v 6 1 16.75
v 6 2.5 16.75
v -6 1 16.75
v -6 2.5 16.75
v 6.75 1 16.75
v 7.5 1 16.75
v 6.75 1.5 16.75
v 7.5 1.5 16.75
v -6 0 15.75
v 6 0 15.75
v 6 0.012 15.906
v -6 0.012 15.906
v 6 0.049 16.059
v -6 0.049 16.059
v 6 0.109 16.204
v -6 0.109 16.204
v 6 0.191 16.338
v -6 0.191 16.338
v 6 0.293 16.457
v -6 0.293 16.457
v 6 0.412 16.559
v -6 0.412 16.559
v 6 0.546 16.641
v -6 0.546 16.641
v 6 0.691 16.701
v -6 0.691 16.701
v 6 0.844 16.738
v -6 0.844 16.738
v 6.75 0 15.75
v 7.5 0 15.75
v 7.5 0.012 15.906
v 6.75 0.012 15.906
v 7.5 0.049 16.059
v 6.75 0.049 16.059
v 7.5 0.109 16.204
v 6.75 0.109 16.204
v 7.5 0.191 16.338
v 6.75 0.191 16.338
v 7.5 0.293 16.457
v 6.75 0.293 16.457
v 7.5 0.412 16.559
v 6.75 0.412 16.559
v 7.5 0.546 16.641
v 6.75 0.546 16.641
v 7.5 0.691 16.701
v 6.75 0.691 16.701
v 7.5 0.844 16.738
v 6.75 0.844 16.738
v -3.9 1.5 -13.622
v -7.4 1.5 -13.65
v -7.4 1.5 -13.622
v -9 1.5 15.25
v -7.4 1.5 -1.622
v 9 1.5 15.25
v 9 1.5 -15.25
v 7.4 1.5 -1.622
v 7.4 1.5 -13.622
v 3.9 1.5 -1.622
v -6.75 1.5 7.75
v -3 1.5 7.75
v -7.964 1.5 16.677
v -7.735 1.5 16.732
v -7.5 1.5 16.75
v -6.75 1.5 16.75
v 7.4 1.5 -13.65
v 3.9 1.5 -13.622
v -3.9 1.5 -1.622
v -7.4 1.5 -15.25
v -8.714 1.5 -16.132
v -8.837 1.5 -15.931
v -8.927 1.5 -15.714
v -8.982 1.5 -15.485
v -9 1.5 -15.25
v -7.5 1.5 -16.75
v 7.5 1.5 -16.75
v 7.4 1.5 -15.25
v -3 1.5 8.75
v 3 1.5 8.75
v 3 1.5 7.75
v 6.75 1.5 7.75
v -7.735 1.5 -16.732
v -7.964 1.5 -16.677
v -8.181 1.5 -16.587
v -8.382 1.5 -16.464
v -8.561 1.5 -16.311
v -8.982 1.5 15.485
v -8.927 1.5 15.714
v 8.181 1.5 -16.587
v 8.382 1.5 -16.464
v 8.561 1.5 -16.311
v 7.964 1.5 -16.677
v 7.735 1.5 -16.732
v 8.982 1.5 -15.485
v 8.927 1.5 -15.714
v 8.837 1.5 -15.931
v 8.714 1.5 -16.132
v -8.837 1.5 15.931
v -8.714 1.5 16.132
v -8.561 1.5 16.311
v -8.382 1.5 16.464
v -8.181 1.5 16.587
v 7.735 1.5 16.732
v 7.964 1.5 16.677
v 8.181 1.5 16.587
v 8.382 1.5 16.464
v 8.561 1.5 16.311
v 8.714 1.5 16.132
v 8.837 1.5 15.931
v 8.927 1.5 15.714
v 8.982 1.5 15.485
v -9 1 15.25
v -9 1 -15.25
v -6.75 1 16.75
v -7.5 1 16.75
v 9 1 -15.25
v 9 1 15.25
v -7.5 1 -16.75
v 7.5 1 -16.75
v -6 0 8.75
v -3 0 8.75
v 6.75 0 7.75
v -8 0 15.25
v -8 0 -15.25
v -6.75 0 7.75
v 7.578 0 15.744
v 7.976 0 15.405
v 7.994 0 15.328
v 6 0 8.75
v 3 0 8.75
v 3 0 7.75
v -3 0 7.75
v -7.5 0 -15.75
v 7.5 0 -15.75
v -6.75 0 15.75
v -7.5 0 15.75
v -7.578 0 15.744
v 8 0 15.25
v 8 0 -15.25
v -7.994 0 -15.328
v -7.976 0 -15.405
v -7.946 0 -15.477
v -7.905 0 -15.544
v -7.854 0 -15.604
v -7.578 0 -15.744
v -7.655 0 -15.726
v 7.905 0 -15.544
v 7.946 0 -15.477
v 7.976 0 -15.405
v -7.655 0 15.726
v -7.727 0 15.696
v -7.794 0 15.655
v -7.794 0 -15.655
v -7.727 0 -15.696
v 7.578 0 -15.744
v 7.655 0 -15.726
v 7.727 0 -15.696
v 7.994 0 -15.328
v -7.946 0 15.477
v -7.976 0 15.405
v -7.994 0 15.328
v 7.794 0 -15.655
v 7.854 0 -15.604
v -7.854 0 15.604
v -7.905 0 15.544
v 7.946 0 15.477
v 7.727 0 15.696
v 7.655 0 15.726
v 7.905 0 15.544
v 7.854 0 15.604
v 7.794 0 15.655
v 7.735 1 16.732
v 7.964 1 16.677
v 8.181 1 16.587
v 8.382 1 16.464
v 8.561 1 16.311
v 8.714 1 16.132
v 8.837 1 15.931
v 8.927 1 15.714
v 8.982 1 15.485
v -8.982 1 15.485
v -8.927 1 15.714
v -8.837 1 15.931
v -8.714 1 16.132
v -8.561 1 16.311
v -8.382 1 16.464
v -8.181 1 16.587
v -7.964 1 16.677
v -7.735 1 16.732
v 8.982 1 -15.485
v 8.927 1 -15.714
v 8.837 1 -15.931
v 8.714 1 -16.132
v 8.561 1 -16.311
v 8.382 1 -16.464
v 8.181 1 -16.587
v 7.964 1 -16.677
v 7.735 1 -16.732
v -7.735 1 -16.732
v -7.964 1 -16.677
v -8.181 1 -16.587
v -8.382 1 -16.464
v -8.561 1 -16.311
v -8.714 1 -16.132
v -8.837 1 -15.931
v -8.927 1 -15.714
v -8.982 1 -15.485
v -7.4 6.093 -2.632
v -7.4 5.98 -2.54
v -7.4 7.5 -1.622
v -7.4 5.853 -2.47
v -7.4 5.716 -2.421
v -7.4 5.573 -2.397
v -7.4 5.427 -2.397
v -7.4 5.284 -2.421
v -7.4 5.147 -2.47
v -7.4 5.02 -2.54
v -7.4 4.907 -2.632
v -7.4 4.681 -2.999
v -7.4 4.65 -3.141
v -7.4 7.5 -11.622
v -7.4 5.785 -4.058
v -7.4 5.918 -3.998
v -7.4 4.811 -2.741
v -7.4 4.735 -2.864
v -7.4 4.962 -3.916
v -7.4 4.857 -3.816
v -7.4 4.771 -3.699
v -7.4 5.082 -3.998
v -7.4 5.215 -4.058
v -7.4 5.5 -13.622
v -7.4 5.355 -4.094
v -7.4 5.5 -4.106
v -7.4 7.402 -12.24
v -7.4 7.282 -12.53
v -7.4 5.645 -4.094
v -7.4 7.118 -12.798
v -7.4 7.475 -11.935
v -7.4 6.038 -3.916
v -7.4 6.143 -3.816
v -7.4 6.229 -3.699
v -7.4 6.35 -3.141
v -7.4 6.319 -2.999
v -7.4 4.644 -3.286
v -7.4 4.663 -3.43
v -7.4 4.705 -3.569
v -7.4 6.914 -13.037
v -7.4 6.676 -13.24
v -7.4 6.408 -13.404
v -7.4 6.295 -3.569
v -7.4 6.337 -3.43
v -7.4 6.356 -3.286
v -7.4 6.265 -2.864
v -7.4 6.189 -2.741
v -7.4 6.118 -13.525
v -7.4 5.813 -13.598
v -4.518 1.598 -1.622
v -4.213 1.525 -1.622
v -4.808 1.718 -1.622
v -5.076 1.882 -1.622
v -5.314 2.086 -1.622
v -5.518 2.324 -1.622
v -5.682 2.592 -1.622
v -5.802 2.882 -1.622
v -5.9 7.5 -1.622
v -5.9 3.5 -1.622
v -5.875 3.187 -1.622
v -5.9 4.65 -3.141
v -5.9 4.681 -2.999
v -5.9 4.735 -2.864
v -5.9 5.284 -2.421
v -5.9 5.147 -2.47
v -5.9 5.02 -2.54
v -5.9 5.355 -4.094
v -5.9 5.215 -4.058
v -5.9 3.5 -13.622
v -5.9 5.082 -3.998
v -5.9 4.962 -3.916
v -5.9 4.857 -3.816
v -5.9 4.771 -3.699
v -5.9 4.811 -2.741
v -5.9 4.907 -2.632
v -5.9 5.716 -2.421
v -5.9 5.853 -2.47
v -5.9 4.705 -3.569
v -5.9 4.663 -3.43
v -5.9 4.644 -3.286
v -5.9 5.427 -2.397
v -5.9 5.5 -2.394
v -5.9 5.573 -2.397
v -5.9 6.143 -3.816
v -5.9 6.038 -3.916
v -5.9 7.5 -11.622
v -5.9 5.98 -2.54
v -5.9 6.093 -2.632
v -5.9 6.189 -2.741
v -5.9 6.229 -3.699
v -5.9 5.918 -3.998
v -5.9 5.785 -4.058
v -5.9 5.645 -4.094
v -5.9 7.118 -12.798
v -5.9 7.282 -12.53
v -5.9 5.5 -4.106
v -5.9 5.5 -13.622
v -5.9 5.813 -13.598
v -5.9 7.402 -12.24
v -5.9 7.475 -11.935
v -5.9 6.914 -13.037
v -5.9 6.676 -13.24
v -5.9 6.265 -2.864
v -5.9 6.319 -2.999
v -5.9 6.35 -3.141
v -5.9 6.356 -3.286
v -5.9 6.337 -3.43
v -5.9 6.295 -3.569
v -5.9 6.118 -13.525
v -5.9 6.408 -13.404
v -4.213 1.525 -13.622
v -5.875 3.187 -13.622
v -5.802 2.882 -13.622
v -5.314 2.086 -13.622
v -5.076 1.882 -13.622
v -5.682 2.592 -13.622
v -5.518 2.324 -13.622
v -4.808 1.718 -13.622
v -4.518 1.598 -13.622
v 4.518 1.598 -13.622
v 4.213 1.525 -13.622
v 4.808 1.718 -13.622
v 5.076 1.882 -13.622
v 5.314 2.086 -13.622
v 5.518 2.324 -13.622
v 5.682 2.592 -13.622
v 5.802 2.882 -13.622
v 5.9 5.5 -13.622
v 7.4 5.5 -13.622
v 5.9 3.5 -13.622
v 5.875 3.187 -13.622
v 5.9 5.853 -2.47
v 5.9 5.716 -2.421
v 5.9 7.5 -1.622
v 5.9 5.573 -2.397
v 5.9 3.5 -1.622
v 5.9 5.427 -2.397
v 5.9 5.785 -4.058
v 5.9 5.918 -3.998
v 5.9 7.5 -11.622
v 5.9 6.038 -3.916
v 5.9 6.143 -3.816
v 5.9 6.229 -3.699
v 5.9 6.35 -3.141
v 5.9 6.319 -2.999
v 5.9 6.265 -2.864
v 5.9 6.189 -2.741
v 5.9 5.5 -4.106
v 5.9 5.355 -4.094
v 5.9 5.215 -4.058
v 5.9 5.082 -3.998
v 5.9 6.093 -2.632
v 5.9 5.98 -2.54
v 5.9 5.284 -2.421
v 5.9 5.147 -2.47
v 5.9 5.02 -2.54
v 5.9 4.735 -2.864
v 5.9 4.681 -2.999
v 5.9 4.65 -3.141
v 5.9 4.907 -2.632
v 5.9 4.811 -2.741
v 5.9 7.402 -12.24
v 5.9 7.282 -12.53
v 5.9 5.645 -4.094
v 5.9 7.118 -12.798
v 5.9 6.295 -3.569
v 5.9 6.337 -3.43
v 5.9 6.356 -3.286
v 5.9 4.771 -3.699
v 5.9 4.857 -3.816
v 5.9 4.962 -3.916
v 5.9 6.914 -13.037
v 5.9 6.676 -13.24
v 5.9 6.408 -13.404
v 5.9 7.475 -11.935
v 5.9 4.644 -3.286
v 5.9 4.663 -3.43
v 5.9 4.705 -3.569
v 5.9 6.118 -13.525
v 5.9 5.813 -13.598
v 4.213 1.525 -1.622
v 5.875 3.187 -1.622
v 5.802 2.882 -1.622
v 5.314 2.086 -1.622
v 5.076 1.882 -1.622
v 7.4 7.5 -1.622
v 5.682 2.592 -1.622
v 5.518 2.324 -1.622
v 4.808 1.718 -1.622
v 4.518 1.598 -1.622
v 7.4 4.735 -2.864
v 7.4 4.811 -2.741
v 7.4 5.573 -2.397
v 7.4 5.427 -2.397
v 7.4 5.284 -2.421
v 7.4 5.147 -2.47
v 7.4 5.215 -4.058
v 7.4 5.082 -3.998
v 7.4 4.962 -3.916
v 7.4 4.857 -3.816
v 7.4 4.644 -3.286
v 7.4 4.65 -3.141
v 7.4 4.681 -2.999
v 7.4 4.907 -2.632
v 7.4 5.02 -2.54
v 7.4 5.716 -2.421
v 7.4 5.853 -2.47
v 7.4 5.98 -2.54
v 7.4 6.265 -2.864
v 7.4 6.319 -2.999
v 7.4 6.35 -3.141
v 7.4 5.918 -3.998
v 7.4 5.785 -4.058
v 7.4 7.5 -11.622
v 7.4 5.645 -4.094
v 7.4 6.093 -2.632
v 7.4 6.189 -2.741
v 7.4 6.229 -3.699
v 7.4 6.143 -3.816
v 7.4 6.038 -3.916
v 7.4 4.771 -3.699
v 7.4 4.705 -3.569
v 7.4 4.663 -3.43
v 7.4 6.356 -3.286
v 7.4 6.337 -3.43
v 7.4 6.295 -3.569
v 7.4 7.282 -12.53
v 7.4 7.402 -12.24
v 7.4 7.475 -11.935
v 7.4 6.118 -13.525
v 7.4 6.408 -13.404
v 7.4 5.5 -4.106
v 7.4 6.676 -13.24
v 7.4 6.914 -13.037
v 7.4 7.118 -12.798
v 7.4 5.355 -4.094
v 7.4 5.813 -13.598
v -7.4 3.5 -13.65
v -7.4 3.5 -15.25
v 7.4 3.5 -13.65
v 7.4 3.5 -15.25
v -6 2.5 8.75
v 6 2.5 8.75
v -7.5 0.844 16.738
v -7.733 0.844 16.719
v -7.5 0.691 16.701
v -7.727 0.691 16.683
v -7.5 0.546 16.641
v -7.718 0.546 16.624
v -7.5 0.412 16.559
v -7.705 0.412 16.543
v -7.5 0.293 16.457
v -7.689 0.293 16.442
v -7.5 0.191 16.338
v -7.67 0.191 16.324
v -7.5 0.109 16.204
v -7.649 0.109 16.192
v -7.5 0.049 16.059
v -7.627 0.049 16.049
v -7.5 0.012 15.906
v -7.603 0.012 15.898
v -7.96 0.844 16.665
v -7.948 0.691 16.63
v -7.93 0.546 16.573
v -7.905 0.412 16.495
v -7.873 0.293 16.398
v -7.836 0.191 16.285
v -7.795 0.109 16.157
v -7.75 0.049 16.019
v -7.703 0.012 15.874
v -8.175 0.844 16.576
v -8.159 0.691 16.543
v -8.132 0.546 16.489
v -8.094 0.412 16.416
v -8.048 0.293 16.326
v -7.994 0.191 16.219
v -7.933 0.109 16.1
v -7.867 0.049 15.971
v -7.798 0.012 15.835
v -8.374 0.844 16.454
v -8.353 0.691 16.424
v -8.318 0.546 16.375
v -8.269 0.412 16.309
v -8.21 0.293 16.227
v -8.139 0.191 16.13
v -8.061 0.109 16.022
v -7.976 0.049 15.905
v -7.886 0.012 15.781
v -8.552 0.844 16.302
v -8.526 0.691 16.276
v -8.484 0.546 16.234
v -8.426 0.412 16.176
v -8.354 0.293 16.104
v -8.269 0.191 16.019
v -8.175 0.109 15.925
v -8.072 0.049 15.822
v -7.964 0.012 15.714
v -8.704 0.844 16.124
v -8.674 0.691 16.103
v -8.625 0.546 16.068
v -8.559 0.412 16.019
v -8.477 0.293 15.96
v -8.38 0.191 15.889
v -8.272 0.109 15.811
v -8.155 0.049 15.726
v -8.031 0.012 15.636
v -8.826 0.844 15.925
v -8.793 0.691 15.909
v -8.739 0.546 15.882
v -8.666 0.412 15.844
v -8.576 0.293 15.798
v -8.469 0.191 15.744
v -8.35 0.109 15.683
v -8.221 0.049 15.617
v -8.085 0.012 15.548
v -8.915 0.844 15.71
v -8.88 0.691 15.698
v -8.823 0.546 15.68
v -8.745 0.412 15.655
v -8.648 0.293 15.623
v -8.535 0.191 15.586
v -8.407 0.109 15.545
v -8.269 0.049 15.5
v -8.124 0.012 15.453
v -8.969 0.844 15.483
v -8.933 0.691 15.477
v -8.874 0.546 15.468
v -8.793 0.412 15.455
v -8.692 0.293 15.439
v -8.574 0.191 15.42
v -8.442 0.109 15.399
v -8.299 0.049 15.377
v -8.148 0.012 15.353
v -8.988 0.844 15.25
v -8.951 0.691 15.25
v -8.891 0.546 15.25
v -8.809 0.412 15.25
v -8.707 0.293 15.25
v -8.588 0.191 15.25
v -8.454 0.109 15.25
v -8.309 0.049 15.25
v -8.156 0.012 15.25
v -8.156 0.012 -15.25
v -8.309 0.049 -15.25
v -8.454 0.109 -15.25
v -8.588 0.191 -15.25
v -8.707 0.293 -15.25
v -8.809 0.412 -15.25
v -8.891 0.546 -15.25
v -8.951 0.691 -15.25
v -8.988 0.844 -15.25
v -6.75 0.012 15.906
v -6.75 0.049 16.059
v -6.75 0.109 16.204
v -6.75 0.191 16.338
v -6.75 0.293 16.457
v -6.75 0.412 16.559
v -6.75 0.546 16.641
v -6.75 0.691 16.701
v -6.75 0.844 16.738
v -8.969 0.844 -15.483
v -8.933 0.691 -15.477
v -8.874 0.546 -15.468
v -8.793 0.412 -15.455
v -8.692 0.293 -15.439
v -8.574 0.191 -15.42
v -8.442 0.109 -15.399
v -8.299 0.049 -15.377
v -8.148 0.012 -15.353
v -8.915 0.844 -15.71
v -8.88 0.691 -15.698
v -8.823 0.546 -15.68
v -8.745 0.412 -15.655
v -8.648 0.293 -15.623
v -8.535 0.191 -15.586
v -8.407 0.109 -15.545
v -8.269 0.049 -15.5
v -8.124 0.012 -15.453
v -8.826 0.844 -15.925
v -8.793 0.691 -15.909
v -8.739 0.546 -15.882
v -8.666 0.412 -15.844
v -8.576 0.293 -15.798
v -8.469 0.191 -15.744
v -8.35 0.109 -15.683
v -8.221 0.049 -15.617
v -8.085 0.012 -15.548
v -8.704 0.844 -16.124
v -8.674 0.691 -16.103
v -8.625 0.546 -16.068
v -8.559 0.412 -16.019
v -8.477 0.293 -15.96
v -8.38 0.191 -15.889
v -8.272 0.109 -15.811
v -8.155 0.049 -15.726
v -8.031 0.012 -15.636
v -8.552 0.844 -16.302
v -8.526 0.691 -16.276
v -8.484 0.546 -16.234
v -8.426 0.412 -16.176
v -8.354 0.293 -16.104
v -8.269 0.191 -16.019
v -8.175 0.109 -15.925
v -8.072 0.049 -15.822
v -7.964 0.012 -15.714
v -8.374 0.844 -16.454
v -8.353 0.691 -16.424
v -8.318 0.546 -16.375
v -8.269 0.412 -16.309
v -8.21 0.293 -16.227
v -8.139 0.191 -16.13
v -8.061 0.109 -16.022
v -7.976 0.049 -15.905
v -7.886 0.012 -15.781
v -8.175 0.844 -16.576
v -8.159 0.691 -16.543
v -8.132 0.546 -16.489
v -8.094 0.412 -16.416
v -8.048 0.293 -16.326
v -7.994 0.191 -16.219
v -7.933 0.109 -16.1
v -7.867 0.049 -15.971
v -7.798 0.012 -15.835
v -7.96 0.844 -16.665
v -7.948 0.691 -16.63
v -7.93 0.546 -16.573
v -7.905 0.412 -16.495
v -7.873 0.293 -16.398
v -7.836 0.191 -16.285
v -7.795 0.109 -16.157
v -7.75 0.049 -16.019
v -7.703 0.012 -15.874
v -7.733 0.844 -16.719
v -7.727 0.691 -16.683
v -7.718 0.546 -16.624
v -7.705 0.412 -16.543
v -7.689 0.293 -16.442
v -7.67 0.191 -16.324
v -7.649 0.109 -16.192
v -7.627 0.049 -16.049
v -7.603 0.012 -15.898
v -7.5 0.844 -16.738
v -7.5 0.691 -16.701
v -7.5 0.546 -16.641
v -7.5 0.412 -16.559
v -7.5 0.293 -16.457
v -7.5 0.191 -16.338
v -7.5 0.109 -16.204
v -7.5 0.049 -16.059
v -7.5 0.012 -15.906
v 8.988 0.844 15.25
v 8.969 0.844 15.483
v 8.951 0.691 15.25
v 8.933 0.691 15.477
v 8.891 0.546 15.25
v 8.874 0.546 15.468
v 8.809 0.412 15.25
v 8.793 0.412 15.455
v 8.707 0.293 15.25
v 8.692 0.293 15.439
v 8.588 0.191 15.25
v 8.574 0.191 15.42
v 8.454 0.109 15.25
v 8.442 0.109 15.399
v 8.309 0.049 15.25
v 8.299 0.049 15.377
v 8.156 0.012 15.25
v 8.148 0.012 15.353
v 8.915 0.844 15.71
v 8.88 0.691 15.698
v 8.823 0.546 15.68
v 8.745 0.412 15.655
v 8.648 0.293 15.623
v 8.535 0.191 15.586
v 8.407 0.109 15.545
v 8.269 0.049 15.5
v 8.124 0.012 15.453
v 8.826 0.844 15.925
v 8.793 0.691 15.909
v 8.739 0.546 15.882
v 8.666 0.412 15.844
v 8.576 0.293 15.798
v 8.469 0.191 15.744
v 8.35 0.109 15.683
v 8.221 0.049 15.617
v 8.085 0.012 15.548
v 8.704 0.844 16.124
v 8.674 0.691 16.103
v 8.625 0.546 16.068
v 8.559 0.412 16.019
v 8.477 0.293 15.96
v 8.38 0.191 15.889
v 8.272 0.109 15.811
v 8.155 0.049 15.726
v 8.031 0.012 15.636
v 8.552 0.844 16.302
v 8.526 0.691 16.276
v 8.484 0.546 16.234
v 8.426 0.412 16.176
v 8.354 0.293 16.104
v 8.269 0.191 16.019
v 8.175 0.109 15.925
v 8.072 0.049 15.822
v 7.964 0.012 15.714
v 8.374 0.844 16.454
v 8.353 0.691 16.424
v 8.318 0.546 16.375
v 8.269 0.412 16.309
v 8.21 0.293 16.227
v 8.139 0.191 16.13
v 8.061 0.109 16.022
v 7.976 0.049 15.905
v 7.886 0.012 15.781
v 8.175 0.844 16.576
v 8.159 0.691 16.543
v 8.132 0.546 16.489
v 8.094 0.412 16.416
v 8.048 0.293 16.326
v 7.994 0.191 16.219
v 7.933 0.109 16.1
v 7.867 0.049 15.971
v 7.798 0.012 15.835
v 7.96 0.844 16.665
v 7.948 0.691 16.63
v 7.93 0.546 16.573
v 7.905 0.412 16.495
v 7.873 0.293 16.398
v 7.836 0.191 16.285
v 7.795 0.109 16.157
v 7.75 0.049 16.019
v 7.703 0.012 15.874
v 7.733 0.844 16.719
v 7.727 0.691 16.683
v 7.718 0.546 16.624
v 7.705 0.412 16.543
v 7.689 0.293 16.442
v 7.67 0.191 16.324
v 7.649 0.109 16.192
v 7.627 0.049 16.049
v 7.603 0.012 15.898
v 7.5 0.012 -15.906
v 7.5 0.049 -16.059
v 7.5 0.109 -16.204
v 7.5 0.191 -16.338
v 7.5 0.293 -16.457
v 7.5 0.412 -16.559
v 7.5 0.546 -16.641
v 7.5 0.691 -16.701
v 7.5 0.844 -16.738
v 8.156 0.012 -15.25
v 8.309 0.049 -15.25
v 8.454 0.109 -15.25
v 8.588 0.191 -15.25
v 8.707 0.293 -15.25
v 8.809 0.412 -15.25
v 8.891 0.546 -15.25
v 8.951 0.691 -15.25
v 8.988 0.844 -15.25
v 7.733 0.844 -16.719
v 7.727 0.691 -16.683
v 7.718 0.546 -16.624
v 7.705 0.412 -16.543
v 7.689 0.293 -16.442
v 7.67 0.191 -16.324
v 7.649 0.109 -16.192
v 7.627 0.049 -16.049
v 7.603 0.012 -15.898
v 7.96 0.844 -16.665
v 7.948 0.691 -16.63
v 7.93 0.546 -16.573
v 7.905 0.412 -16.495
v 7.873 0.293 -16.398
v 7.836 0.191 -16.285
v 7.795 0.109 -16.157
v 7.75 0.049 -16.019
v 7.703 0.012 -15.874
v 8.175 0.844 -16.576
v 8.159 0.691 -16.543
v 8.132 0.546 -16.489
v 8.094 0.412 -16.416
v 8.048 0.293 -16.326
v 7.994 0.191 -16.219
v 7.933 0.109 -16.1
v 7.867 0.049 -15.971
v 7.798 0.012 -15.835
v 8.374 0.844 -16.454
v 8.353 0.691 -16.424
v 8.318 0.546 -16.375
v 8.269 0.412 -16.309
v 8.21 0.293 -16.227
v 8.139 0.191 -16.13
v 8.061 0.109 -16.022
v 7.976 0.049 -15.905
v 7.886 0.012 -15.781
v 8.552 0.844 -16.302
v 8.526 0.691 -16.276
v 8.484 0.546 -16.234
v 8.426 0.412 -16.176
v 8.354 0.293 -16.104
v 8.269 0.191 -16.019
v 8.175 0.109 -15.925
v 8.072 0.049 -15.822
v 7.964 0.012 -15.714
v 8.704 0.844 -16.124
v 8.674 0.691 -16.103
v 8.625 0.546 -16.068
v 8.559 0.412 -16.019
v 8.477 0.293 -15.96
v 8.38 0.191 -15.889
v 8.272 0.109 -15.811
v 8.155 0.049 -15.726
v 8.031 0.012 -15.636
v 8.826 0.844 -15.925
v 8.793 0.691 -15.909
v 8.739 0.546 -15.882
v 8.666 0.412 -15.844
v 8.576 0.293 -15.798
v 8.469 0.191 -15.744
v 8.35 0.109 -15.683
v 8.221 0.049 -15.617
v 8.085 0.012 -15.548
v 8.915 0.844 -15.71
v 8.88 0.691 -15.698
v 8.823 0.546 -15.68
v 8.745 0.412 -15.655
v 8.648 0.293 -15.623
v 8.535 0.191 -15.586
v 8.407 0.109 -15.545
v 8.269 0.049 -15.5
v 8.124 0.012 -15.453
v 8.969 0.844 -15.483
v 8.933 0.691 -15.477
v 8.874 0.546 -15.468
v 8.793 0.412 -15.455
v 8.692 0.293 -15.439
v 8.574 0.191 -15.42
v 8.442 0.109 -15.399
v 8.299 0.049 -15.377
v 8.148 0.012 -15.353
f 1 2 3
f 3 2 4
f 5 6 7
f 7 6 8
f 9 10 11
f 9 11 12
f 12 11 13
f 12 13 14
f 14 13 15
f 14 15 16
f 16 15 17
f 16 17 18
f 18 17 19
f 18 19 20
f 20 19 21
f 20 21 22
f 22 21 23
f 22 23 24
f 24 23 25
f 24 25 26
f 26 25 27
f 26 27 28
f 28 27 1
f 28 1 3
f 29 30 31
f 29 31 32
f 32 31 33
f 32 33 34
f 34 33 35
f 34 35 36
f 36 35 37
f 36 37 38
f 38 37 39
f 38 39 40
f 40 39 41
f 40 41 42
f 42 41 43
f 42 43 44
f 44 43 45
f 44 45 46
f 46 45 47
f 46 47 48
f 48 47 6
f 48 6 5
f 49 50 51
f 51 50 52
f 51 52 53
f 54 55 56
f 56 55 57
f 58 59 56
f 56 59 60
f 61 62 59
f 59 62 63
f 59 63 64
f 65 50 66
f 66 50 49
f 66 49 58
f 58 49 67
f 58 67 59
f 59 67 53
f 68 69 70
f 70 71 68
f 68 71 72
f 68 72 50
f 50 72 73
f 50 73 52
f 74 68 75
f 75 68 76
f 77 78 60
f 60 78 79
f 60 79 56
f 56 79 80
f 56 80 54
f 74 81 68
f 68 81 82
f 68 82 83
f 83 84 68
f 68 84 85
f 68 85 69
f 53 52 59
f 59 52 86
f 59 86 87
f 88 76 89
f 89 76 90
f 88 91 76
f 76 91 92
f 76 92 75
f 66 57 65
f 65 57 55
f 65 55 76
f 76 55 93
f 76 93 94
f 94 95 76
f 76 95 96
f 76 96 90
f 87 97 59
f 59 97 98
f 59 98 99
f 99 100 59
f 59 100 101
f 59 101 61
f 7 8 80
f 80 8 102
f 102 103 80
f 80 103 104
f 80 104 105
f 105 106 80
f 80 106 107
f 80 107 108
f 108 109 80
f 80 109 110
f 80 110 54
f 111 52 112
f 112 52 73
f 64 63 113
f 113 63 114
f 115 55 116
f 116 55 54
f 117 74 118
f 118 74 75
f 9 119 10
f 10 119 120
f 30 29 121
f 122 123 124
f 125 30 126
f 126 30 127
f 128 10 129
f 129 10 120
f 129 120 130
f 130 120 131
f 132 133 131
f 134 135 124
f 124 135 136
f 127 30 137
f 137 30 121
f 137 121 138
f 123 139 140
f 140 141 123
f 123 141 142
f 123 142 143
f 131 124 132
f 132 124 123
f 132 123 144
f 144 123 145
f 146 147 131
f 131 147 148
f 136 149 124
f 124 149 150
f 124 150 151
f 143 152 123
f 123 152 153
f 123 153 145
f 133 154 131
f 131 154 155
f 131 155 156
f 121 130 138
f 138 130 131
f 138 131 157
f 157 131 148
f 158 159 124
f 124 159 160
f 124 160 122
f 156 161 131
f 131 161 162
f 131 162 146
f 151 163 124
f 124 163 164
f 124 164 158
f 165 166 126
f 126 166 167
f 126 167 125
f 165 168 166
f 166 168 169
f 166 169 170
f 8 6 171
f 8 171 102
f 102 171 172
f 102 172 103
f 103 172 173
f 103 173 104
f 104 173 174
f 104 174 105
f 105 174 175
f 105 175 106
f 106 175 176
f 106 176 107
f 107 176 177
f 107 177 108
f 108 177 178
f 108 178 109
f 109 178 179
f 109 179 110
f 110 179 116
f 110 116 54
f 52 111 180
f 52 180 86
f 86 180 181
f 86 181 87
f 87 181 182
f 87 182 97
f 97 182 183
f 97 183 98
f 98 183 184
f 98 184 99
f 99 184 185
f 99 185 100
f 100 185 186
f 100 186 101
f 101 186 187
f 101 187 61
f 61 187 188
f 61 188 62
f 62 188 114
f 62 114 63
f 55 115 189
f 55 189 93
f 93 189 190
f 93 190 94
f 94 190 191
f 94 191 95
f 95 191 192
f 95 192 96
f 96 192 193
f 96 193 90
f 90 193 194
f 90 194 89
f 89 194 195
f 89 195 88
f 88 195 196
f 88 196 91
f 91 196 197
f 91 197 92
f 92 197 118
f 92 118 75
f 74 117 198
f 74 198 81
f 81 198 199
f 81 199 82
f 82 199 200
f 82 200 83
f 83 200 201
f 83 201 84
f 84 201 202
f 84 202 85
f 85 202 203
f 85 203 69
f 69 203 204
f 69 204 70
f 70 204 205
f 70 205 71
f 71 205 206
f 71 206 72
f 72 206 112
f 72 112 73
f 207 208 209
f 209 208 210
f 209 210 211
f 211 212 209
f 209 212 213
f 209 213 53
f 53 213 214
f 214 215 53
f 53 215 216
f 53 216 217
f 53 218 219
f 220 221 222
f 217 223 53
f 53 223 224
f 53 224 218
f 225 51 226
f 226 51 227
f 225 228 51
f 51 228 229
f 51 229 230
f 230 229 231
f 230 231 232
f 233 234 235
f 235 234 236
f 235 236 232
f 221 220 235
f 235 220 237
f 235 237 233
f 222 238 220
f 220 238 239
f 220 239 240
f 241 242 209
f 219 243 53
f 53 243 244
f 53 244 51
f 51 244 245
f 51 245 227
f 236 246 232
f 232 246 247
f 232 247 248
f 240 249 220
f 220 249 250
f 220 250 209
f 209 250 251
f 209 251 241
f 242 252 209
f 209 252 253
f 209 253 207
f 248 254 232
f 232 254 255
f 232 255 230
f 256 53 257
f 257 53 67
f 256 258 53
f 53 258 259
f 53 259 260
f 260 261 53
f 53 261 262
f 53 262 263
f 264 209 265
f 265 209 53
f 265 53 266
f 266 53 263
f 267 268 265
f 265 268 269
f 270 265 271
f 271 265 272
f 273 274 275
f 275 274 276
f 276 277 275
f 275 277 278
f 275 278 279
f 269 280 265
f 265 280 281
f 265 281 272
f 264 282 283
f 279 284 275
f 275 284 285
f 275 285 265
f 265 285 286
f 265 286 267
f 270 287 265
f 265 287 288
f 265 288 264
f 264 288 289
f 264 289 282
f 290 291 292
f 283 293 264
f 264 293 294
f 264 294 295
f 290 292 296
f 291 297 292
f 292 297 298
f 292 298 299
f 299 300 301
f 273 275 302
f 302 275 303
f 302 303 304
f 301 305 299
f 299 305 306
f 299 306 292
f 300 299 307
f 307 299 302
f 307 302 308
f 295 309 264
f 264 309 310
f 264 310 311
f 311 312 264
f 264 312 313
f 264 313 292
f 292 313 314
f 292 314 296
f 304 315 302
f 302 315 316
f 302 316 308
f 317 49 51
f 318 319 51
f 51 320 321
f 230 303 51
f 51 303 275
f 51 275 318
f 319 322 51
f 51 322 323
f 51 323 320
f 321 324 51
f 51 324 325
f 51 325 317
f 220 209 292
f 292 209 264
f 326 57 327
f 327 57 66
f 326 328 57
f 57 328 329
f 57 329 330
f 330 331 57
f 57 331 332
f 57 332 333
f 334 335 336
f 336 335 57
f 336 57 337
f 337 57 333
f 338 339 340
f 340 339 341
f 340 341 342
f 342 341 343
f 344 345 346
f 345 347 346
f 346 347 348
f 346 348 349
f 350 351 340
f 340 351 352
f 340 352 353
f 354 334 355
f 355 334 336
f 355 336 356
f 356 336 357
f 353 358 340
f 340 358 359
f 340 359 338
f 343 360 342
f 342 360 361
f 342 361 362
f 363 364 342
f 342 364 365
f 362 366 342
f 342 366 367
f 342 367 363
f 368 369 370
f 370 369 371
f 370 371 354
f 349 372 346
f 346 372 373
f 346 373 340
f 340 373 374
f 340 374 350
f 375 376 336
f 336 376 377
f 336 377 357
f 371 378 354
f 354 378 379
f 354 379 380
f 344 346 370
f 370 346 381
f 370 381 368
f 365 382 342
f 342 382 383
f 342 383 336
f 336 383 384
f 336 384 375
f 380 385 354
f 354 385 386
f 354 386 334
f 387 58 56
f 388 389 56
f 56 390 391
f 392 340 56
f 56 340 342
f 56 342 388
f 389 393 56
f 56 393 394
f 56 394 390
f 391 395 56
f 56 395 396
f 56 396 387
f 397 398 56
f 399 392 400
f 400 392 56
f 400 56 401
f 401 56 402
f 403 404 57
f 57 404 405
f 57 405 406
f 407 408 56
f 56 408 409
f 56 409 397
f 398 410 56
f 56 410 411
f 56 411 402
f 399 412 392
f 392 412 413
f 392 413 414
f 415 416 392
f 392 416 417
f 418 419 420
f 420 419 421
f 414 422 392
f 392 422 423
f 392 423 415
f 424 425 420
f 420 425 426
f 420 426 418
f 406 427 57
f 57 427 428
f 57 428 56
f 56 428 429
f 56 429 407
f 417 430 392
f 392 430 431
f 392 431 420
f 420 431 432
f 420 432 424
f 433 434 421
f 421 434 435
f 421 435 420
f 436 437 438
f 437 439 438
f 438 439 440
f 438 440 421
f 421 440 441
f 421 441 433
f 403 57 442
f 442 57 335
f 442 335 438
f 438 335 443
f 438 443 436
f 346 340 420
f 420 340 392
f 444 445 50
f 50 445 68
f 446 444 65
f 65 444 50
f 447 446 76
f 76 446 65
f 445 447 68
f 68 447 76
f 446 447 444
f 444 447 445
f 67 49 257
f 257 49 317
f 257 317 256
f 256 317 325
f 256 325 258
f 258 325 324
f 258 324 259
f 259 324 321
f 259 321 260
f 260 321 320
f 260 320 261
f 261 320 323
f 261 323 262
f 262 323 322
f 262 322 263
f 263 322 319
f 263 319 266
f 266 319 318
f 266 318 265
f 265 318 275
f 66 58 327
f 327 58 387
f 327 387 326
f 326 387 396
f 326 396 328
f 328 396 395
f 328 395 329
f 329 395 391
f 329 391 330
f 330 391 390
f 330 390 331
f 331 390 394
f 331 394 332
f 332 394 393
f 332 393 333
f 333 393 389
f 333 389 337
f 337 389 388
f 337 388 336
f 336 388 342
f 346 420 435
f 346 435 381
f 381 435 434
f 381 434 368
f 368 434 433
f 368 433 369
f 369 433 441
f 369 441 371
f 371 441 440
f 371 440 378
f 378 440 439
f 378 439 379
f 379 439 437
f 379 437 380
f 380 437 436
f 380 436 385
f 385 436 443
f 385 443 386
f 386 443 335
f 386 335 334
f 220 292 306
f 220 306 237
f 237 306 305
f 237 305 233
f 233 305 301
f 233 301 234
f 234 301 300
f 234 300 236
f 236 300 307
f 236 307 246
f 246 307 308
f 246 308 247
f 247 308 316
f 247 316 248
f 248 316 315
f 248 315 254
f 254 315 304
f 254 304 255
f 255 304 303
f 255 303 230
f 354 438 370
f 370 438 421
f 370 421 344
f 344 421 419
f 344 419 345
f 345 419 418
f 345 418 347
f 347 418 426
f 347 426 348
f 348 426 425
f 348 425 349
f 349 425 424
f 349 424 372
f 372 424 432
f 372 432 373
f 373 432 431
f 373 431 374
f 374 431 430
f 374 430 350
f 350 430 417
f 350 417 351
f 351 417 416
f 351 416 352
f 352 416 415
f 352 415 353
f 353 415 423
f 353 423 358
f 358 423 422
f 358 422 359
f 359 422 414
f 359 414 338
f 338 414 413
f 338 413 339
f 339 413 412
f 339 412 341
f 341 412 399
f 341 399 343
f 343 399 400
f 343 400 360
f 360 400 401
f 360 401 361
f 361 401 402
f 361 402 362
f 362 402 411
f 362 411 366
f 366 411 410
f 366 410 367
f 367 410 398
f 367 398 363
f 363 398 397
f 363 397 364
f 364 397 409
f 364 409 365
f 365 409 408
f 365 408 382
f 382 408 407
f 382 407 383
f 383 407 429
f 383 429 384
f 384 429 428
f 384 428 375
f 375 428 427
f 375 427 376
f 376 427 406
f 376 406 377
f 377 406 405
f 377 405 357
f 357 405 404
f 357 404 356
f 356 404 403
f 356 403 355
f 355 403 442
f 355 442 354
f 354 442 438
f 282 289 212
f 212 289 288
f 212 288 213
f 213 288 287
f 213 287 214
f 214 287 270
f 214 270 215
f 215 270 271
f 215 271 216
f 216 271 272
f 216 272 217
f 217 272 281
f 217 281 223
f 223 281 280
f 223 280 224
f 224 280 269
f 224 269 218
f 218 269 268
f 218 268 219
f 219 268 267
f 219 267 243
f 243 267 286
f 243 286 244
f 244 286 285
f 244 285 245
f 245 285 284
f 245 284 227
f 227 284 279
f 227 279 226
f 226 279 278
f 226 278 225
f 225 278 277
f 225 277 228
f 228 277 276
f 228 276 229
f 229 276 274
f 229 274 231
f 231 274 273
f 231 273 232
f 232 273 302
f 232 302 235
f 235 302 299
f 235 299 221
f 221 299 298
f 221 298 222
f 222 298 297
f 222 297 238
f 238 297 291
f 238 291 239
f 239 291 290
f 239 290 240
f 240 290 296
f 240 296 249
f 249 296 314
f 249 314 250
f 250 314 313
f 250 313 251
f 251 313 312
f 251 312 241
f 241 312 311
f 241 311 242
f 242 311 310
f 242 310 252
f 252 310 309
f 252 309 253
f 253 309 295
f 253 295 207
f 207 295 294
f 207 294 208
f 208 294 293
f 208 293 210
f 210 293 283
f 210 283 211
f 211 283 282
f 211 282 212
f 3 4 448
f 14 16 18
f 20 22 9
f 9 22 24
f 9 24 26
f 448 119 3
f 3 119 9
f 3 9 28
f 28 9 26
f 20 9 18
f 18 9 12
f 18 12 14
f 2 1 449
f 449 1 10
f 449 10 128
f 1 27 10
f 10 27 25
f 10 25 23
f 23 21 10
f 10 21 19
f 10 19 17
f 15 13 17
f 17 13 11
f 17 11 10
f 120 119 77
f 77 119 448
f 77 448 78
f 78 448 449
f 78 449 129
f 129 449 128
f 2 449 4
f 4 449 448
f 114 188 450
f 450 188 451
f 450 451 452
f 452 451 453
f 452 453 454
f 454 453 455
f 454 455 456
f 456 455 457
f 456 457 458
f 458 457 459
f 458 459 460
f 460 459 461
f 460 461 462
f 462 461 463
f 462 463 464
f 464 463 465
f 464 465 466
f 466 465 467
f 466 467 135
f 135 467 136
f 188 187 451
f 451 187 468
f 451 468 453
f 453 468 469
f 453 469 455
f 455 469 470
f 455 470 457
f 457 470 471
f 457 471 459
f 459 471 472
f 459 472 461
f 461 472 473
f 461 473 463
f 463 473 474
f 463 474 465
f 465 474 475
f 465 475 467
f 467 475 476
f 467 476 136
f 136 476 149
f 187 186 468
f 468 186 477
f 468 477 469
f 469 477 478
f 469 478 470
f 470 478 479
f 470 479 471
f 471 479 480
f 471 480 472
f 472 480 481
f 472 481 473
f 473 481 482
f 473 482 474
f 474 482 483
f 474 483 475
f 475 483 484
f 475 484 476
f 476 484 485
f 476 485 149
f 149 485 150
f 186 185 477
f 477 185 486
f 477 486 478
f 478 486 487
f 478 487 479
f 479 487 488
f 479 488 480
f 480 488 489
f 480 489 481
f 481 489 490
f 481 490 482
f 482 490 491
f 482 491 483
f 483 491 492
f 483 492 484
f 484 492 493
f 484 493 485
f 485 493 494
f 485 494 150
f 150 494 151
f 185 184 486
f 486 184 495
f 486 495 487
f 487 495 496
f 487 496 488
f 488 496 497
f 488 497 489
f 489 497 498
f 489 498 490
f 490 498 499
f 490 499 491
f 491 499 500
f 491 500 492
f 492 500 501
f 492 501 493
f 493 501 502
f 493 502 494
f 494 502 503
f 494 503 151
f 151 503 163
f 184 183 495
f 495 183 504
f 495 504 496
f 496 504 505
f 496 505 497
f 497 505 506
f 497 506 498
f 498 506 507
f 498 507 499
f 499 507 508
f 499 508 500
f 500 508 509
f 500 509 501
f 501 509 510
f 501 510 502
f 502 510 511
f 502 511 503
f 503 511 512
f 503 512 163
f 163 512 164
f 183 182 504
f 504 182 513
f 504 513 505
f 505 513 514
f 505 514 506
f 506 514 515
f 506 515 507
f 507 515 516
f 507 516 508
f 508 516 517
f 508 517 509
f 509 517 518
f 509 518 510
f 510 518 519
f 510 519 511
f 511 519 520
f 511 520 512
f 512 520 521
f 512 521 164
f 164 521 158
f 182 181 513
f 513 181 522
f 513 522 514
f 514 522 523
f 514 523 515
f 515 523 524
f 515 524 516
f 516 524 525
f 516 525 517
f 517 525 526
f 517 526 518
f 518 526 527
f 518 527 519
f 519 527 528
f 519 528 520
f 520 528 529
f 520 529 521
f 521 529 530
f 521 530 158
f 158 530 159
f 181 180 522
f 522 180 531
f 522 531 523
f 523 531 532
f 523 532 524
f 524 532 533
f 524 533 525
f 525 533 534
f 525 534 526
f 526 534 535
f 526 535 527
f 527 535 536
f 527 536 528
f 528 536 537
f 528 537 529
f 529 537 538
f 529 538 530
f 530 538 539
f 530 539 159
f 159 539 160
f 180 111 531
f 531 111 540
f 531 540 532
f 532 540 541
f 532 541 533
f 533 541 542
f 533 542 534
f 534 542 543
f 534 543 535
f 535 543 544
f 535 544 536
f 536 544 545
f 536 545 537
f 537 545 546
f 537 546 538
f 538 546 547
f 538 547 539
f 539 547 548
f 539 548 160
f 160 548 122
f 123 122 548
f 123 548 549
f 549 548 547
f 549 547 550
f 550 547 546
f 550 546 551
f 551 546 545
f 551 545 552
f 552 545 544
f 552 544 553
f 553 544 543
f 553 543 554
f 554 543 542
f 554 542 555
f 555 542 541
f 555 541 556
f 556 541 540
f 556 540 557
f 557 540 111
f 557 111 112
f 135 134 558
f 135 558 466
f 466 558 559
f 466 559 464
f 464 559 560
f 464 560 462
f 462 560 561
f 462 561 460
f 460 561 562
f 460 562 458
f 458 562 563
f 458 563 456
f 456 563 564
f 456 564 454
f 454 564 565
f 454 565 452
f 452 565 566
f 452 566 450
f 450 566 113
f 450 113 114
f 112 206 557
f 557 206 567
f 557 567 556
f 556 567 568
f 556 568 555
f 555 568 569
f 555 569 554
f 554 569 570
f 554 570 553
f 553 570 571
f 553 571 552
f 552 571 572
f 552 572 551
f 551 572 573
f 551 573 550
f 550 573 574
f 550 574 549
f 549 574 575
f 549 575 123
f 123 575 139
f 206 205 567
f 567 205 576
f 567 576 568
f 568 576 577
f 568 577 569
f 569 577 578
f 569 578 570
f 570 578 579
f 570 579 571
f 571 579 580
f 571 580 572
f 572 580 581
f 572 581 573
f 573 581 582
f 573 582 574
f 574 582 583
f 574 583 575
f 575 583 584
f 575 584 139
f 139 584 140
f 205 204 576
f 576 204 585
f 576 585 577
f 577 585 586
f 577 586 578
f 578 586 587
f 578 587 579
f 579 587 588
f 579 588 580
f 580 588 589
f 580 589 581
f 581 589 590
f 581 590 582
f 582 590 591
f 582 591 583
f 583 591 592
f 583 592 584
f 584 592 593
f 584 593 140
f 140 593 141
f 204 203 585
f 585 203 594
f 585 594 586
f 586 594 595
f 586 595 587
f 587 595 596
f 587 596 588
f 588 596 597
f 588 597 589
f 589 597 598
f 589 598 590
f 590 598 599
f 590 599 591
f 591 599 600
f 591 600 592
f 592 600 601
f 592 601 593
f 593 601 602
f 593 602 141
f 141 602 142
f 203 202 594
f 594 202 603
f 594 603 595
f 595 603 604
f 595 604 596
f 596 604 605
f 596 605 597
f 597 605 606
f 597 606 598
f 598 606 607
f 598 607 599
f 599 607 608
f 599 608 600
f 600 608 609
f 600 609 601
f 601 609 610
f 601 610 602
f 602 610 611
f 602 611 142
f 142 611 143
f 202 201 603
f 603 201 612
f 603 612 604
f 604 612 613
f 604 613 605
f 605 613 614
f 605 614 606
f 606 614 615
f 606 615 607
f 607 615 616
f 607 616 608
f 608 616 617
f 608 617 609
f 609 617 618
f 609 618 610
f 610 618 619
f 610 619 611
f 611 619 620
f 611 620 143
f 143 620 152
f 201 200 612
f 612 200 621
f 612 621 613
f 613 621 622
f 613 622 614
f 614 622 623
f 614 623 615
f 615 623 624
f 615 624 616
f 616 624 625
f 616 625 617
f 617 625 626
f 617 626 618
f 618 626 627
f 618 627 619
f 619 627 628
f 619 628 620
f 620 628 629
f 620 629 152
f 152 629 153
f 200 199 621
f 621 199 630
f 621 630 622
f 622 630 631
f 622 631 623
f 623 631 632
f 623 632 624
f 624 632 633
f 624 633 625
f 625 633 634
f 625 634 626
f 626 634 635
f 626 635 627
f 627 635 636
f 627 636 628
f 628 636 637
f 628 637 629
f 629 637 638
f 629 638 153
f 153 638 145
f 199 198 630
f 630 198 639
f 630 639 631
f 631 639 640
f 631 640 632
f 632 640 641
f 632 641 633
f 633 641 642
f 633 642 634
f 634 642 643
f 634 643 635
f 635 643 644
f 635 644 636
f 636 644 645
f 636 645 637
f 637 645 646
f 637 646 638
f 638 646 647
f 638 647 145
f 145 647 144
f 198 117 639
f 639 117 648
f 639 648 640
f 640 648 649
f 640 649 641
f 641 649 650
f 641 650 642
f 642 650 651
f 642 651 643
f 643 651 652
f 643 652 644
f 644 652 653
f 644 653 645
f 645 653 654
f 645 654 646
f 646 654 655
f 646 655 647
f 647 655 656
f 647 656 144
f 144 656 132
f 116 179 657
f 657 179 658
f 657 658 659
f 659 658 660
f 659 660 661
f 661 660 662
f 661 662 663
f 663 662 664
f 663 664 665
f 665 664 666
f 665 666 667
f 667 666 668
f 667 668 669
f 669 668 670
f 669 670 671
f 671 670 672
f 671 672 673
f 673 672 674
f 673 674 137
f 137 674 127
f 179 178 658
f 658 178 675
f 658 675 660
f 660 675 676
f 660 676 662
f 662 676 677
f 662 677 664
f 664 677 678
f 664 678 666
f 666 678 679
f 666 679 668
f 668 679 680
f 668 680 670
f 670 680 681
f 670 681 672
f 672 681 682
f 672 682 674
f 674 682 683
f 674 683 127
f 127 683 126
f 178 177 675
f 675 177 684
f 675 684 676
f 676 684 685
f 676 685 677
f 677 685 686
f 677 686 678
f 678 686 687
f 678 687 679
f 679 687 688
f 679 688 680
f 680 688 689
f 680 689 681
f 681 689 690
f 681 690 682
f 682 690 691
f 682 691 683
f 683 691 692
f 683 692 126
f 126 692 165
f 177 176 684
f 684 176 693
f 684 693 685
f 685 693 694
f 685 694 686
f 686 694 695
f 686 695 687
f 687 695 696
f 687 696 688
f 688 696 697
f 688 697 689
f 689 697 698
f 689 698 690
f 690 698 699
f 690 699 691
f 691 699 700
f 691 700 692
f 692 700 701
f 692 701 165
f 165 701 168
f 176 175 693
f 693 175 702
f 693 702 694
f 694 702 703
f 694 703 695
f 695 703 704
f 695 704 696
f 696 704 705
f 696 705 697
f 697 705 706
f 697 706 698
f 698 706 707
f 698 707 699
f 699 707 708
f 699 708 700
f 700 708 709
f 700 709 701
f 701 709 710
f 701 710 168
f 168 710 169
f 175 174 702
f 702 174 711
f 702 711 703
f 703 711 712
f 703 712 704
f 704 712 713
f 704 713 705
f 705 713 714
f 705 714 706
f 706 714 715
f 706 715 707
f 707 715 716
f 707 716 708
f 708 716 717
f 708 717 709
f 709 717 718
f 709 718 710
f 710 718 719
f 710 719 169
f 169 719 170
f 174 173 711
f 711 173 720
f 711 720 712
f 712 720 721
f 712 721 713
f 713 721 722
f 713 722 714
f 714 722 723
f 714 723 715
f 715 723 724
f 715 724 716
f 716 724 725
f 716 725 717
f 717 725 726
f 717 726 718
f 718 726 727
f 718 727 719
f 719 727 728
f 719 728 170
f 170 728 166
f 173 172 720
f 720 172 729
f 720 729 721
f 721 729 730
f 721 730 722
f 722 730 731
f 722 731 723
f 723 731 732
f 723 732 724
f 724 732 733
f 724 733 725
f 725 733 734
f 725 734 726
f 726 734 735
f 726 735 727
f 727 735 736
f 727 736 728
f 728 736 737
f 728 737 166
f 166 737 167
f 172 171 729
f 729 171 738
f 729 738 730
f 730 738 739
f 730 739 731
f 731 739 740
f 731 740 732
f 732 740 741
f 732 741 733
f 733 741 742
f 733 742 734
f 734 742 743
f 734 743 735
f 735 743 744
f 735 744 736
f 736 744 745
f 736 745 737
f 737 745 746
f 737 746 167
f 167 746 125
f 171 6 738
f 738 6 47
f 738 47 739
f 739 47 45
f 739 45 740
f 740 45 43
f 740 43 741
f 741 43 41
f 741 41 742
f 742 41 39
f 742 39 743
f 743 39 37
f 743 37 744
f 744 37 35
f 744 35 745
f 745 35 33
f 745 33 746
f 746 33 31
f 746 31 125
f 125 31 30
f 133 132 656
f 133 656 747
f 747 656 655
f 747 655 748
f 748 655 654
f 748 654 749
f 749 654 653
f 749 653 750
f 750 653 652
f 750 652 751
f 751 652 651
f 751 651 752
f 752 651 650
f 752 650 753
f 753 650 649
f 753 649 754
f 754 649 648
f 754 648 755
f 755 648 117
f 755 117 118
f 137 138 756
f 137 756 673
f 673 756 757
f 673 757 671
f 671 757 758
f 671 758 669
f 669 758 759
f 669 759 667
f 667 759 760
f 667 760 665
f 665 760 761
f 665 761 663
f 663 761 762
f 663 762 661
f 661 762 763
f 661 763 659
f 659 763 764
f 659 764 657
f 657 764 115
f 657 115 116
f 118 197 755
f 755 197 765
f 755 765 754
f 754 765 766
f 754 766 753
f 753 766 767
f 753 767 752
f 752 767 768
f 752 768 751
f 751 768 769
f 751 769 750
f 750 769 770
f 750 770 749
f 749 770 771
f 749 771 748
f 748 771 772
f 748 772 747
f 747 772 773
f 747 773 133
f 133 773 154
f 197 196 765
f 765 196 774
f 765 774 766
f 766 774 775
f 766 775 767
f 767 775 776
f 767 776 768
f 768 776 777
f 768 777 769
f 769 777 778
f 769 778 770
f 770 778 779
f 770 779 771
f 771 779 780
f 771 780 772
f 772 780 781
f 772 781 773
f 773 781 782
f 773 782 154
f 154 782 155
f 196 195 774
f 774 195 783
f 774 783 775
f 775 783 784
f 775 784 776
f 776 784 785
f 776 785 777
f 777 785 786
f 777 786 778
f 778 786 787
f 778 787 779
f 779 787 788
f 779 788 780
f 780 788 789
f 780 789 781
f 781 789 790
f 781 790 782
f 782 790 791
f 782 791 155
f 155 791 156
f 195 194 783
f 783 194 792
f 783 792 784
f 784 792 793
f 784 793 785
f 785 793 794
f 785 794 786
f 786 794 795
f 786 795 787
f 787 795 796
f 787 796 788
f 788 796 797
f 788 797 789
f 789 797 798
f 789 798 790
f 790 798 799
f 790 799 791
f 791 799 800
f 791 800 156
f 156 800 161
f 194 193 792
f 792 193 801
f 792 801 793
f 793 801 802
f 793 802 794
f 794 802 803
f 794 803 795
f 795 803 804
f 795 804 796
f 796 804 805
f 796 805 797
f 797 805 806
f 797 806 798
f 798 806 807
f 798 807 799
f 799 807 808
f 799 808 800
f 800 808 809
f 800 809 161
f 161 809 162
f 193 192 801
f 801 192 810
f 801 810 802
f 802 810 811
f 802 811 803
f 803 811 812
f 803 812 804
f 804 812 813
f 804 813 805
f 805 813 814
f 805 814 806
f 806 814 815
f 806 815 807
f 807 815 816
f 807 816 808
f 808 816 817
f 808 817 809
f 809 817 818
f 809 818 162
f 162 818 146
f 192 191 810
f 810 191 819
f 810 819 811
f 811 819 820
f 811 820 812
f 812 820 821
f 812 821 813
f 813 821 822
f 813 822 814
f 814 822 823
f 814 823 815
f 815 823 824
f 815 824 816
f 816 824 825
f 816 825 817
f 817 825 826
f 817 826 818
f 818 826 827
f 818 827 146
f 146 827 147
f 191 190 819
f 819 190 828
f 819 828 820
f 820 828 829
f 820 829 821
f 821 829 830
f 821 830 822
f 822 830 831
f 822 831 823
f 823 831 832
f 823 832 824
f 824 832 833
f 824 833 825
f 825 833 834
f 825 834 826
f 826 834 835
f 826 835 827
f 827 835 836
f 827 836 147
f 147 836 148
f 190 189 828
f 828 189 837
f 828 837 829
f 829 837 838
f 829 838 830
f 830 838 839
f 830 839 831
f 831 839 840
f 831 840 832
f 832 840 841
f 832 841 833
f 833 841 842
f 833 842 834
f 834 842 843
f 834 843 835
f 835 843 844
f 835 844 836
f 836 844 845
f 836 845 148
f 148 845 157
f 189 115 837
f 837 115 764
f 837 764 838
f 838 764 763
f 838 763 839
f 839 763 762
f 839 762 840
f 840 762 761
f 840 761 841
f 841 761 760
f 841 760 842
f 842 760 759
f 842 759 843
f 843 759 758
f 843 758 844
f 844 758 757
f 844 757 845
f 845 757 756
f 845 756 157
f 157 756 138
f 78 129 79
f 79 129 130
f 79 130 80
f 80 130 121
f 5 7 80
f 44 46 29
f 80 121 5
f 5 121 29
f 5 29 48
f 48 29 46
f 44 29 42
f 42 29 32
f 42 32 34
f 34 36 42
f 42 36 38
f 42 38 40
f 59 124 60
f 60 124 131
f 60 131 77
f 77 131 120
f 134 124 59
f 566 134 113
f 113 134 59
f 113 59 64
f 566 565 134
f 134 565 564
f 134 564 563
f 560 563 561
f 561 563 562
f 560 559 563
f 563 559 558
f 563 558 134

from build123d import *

# Parameters (mm, degrees)
SKETCH_1_W          = 18
SKETCH_1_H          = 33.5
EXTRUDE_1_DEPTH     = 1.5
FILLET_1_R          = 1.5
SKETCH_2_W          = 1.5
SKETCH_2_H          = 12
EXTRUDE_2_DEPTH     = 6
SKETCH_3_W          = 14.8
SKETCH_3_H          = 1.6
EXTRUDE_3_DEPTH     = 2
FILLET_2_R          = 2
SKETCH_4_R          = 0.856485036
CUT_EXTRUDE_1_DEPTH = 18
SKETCH_5_W          = 12
SKETCH_5_H          = 8
EXTRUDE_4_DEPTH     = 1
FILLET_3_R          = 1
CUT_EXTRUDE_2_DEPTH = 10


with BuildPart() as part:
    # 草图1 → 凸台-拉伸1 (new body)
    with BuildSketch(Plane(origin=(0, 0, 0), x_dir=(1, 0, 0), z_dir=(0, 1, 0))):
        Rectangle(SKETCH_1_W, SKETCH_1_H)
    extrude(amount=EXTRUDE_1_DEPTH)

    # 圆角1
    fillet_1_edges = [part.edges().sort_by_distance(p)[0] for p in [
        (-9, 0.75, -16.75),
        (9, 0.75, -16.75),
        (9, 0.75, 16.75),
        (-9, 0.75, 16.75),
    ]]
    fillet(fillet_1_edges, radius=FILLET_1_R)

    # 草图2 → 凸台-拉伸2 (add)
    with BuildSketch(Plane(origin=(0, 1.5, 0), x_dir=(1, 0, 0), z_dir=(0, 1, 0))):
        with Locations((-6.65, 7.622409508)):
            Rectangle(SKETCH_2_W, SKETCH_2_H)
        with Locations((6.65, 7.622409508)):
            Rectangle(SKETCH_2_W, SKETCH_2_H)
    extrude(amount=EXTRUDE_2_DEPTH)

    # 草图3 → 凸台-拉伸3 (add)
    with BuildSketch(Plane(origin=(0, 1.5, 0), x_dir=(1, 0, 0), z_dir=(0, 1, 0))):
        with Locations((0, 14.45)):
            Rectangle(SKETCH_3_W, SKETCH_3_H)
    extrude(amount=EXTRUDE_3_DEPTH)

    # 圆角2
    fillet_2_edges = [part.edges().sort_by_distance(p)[0] for p in [
        (-5.9, 1.5, -7.622409508),
        (-6.65, 7.5, -13.622409508),
        (5.9, 1.5, -7.622409508),
        (6.65, 7.5, -13.622409508),
    ]]
    fillet(fillet_2_edges, radius=FILLET_2_R)

    # 草图4 → 切除-拉伸1 (cut)
    with BuildSketch(Plane(origin=(7.4, 0, 0), x_dir=(0, 0, -1), z_dir=(1, 0, 0))):
        with Locations((3.25, 5.5)):
            Circle(SKETCH_4_R)
    extrude(amount=-CUT_EXTRUDE_1_DEPTH, mode=Mode.SUBTRACT)

    # 草图5 → 凸台-拉伸4 (add)
    with BuildSketch(Plane(origin=(0, 1.5, 0), x_dir=(1, 0, 0), z_dir=(0, 1, 0))):
        with Locations((0, -12.75)):
            Rectangle(SKETCH_5_W, SKETCH_5_H)
    extrude(amount=EXTRUDE_4_DEPTH)

    # 圆角3
    fillet_3_edges = [part.edges().sort_by_distance(p)[0] for p in [
        (9, 0, 0),
        (-9, 0, 0),
        (0, 0, -16.75),
        (0, 0, 16.75),
        (-8.560660172, 0, -16.310660172),
        (8.560660172, 0, -16.310660172),
        (-8.560660172, 0, 16.310660172),
        (8.560660172, 0, 16.310660172),
    ]]
    fillet(fillet_3_edges, radius=FILLET_3_R)

    # 草图6 → 切除-拉伸2 (cut)
    with BuildSketch(Plane(origin=(0, 1.5, 0), x_dir=(1, 0, 0), z_dir=(0, 1, 0))):
        Polygon((-6, -16.75), (-6.75, -16.75), (-6.75, -7.75), (-3, -7.75), (-3, -8.75), (-6, -8.75), align=None)
        Polygon((6, -8.75), (6, -16.75), (6.75, -16.75), (6.75, -7.75), (3, -7.75), (3, -8.75), align=None)
    extrude(amount=-CUT_EXTRUDE_2_DEPTH, mode=Mode.SUBTRACT)


solid = part.part
